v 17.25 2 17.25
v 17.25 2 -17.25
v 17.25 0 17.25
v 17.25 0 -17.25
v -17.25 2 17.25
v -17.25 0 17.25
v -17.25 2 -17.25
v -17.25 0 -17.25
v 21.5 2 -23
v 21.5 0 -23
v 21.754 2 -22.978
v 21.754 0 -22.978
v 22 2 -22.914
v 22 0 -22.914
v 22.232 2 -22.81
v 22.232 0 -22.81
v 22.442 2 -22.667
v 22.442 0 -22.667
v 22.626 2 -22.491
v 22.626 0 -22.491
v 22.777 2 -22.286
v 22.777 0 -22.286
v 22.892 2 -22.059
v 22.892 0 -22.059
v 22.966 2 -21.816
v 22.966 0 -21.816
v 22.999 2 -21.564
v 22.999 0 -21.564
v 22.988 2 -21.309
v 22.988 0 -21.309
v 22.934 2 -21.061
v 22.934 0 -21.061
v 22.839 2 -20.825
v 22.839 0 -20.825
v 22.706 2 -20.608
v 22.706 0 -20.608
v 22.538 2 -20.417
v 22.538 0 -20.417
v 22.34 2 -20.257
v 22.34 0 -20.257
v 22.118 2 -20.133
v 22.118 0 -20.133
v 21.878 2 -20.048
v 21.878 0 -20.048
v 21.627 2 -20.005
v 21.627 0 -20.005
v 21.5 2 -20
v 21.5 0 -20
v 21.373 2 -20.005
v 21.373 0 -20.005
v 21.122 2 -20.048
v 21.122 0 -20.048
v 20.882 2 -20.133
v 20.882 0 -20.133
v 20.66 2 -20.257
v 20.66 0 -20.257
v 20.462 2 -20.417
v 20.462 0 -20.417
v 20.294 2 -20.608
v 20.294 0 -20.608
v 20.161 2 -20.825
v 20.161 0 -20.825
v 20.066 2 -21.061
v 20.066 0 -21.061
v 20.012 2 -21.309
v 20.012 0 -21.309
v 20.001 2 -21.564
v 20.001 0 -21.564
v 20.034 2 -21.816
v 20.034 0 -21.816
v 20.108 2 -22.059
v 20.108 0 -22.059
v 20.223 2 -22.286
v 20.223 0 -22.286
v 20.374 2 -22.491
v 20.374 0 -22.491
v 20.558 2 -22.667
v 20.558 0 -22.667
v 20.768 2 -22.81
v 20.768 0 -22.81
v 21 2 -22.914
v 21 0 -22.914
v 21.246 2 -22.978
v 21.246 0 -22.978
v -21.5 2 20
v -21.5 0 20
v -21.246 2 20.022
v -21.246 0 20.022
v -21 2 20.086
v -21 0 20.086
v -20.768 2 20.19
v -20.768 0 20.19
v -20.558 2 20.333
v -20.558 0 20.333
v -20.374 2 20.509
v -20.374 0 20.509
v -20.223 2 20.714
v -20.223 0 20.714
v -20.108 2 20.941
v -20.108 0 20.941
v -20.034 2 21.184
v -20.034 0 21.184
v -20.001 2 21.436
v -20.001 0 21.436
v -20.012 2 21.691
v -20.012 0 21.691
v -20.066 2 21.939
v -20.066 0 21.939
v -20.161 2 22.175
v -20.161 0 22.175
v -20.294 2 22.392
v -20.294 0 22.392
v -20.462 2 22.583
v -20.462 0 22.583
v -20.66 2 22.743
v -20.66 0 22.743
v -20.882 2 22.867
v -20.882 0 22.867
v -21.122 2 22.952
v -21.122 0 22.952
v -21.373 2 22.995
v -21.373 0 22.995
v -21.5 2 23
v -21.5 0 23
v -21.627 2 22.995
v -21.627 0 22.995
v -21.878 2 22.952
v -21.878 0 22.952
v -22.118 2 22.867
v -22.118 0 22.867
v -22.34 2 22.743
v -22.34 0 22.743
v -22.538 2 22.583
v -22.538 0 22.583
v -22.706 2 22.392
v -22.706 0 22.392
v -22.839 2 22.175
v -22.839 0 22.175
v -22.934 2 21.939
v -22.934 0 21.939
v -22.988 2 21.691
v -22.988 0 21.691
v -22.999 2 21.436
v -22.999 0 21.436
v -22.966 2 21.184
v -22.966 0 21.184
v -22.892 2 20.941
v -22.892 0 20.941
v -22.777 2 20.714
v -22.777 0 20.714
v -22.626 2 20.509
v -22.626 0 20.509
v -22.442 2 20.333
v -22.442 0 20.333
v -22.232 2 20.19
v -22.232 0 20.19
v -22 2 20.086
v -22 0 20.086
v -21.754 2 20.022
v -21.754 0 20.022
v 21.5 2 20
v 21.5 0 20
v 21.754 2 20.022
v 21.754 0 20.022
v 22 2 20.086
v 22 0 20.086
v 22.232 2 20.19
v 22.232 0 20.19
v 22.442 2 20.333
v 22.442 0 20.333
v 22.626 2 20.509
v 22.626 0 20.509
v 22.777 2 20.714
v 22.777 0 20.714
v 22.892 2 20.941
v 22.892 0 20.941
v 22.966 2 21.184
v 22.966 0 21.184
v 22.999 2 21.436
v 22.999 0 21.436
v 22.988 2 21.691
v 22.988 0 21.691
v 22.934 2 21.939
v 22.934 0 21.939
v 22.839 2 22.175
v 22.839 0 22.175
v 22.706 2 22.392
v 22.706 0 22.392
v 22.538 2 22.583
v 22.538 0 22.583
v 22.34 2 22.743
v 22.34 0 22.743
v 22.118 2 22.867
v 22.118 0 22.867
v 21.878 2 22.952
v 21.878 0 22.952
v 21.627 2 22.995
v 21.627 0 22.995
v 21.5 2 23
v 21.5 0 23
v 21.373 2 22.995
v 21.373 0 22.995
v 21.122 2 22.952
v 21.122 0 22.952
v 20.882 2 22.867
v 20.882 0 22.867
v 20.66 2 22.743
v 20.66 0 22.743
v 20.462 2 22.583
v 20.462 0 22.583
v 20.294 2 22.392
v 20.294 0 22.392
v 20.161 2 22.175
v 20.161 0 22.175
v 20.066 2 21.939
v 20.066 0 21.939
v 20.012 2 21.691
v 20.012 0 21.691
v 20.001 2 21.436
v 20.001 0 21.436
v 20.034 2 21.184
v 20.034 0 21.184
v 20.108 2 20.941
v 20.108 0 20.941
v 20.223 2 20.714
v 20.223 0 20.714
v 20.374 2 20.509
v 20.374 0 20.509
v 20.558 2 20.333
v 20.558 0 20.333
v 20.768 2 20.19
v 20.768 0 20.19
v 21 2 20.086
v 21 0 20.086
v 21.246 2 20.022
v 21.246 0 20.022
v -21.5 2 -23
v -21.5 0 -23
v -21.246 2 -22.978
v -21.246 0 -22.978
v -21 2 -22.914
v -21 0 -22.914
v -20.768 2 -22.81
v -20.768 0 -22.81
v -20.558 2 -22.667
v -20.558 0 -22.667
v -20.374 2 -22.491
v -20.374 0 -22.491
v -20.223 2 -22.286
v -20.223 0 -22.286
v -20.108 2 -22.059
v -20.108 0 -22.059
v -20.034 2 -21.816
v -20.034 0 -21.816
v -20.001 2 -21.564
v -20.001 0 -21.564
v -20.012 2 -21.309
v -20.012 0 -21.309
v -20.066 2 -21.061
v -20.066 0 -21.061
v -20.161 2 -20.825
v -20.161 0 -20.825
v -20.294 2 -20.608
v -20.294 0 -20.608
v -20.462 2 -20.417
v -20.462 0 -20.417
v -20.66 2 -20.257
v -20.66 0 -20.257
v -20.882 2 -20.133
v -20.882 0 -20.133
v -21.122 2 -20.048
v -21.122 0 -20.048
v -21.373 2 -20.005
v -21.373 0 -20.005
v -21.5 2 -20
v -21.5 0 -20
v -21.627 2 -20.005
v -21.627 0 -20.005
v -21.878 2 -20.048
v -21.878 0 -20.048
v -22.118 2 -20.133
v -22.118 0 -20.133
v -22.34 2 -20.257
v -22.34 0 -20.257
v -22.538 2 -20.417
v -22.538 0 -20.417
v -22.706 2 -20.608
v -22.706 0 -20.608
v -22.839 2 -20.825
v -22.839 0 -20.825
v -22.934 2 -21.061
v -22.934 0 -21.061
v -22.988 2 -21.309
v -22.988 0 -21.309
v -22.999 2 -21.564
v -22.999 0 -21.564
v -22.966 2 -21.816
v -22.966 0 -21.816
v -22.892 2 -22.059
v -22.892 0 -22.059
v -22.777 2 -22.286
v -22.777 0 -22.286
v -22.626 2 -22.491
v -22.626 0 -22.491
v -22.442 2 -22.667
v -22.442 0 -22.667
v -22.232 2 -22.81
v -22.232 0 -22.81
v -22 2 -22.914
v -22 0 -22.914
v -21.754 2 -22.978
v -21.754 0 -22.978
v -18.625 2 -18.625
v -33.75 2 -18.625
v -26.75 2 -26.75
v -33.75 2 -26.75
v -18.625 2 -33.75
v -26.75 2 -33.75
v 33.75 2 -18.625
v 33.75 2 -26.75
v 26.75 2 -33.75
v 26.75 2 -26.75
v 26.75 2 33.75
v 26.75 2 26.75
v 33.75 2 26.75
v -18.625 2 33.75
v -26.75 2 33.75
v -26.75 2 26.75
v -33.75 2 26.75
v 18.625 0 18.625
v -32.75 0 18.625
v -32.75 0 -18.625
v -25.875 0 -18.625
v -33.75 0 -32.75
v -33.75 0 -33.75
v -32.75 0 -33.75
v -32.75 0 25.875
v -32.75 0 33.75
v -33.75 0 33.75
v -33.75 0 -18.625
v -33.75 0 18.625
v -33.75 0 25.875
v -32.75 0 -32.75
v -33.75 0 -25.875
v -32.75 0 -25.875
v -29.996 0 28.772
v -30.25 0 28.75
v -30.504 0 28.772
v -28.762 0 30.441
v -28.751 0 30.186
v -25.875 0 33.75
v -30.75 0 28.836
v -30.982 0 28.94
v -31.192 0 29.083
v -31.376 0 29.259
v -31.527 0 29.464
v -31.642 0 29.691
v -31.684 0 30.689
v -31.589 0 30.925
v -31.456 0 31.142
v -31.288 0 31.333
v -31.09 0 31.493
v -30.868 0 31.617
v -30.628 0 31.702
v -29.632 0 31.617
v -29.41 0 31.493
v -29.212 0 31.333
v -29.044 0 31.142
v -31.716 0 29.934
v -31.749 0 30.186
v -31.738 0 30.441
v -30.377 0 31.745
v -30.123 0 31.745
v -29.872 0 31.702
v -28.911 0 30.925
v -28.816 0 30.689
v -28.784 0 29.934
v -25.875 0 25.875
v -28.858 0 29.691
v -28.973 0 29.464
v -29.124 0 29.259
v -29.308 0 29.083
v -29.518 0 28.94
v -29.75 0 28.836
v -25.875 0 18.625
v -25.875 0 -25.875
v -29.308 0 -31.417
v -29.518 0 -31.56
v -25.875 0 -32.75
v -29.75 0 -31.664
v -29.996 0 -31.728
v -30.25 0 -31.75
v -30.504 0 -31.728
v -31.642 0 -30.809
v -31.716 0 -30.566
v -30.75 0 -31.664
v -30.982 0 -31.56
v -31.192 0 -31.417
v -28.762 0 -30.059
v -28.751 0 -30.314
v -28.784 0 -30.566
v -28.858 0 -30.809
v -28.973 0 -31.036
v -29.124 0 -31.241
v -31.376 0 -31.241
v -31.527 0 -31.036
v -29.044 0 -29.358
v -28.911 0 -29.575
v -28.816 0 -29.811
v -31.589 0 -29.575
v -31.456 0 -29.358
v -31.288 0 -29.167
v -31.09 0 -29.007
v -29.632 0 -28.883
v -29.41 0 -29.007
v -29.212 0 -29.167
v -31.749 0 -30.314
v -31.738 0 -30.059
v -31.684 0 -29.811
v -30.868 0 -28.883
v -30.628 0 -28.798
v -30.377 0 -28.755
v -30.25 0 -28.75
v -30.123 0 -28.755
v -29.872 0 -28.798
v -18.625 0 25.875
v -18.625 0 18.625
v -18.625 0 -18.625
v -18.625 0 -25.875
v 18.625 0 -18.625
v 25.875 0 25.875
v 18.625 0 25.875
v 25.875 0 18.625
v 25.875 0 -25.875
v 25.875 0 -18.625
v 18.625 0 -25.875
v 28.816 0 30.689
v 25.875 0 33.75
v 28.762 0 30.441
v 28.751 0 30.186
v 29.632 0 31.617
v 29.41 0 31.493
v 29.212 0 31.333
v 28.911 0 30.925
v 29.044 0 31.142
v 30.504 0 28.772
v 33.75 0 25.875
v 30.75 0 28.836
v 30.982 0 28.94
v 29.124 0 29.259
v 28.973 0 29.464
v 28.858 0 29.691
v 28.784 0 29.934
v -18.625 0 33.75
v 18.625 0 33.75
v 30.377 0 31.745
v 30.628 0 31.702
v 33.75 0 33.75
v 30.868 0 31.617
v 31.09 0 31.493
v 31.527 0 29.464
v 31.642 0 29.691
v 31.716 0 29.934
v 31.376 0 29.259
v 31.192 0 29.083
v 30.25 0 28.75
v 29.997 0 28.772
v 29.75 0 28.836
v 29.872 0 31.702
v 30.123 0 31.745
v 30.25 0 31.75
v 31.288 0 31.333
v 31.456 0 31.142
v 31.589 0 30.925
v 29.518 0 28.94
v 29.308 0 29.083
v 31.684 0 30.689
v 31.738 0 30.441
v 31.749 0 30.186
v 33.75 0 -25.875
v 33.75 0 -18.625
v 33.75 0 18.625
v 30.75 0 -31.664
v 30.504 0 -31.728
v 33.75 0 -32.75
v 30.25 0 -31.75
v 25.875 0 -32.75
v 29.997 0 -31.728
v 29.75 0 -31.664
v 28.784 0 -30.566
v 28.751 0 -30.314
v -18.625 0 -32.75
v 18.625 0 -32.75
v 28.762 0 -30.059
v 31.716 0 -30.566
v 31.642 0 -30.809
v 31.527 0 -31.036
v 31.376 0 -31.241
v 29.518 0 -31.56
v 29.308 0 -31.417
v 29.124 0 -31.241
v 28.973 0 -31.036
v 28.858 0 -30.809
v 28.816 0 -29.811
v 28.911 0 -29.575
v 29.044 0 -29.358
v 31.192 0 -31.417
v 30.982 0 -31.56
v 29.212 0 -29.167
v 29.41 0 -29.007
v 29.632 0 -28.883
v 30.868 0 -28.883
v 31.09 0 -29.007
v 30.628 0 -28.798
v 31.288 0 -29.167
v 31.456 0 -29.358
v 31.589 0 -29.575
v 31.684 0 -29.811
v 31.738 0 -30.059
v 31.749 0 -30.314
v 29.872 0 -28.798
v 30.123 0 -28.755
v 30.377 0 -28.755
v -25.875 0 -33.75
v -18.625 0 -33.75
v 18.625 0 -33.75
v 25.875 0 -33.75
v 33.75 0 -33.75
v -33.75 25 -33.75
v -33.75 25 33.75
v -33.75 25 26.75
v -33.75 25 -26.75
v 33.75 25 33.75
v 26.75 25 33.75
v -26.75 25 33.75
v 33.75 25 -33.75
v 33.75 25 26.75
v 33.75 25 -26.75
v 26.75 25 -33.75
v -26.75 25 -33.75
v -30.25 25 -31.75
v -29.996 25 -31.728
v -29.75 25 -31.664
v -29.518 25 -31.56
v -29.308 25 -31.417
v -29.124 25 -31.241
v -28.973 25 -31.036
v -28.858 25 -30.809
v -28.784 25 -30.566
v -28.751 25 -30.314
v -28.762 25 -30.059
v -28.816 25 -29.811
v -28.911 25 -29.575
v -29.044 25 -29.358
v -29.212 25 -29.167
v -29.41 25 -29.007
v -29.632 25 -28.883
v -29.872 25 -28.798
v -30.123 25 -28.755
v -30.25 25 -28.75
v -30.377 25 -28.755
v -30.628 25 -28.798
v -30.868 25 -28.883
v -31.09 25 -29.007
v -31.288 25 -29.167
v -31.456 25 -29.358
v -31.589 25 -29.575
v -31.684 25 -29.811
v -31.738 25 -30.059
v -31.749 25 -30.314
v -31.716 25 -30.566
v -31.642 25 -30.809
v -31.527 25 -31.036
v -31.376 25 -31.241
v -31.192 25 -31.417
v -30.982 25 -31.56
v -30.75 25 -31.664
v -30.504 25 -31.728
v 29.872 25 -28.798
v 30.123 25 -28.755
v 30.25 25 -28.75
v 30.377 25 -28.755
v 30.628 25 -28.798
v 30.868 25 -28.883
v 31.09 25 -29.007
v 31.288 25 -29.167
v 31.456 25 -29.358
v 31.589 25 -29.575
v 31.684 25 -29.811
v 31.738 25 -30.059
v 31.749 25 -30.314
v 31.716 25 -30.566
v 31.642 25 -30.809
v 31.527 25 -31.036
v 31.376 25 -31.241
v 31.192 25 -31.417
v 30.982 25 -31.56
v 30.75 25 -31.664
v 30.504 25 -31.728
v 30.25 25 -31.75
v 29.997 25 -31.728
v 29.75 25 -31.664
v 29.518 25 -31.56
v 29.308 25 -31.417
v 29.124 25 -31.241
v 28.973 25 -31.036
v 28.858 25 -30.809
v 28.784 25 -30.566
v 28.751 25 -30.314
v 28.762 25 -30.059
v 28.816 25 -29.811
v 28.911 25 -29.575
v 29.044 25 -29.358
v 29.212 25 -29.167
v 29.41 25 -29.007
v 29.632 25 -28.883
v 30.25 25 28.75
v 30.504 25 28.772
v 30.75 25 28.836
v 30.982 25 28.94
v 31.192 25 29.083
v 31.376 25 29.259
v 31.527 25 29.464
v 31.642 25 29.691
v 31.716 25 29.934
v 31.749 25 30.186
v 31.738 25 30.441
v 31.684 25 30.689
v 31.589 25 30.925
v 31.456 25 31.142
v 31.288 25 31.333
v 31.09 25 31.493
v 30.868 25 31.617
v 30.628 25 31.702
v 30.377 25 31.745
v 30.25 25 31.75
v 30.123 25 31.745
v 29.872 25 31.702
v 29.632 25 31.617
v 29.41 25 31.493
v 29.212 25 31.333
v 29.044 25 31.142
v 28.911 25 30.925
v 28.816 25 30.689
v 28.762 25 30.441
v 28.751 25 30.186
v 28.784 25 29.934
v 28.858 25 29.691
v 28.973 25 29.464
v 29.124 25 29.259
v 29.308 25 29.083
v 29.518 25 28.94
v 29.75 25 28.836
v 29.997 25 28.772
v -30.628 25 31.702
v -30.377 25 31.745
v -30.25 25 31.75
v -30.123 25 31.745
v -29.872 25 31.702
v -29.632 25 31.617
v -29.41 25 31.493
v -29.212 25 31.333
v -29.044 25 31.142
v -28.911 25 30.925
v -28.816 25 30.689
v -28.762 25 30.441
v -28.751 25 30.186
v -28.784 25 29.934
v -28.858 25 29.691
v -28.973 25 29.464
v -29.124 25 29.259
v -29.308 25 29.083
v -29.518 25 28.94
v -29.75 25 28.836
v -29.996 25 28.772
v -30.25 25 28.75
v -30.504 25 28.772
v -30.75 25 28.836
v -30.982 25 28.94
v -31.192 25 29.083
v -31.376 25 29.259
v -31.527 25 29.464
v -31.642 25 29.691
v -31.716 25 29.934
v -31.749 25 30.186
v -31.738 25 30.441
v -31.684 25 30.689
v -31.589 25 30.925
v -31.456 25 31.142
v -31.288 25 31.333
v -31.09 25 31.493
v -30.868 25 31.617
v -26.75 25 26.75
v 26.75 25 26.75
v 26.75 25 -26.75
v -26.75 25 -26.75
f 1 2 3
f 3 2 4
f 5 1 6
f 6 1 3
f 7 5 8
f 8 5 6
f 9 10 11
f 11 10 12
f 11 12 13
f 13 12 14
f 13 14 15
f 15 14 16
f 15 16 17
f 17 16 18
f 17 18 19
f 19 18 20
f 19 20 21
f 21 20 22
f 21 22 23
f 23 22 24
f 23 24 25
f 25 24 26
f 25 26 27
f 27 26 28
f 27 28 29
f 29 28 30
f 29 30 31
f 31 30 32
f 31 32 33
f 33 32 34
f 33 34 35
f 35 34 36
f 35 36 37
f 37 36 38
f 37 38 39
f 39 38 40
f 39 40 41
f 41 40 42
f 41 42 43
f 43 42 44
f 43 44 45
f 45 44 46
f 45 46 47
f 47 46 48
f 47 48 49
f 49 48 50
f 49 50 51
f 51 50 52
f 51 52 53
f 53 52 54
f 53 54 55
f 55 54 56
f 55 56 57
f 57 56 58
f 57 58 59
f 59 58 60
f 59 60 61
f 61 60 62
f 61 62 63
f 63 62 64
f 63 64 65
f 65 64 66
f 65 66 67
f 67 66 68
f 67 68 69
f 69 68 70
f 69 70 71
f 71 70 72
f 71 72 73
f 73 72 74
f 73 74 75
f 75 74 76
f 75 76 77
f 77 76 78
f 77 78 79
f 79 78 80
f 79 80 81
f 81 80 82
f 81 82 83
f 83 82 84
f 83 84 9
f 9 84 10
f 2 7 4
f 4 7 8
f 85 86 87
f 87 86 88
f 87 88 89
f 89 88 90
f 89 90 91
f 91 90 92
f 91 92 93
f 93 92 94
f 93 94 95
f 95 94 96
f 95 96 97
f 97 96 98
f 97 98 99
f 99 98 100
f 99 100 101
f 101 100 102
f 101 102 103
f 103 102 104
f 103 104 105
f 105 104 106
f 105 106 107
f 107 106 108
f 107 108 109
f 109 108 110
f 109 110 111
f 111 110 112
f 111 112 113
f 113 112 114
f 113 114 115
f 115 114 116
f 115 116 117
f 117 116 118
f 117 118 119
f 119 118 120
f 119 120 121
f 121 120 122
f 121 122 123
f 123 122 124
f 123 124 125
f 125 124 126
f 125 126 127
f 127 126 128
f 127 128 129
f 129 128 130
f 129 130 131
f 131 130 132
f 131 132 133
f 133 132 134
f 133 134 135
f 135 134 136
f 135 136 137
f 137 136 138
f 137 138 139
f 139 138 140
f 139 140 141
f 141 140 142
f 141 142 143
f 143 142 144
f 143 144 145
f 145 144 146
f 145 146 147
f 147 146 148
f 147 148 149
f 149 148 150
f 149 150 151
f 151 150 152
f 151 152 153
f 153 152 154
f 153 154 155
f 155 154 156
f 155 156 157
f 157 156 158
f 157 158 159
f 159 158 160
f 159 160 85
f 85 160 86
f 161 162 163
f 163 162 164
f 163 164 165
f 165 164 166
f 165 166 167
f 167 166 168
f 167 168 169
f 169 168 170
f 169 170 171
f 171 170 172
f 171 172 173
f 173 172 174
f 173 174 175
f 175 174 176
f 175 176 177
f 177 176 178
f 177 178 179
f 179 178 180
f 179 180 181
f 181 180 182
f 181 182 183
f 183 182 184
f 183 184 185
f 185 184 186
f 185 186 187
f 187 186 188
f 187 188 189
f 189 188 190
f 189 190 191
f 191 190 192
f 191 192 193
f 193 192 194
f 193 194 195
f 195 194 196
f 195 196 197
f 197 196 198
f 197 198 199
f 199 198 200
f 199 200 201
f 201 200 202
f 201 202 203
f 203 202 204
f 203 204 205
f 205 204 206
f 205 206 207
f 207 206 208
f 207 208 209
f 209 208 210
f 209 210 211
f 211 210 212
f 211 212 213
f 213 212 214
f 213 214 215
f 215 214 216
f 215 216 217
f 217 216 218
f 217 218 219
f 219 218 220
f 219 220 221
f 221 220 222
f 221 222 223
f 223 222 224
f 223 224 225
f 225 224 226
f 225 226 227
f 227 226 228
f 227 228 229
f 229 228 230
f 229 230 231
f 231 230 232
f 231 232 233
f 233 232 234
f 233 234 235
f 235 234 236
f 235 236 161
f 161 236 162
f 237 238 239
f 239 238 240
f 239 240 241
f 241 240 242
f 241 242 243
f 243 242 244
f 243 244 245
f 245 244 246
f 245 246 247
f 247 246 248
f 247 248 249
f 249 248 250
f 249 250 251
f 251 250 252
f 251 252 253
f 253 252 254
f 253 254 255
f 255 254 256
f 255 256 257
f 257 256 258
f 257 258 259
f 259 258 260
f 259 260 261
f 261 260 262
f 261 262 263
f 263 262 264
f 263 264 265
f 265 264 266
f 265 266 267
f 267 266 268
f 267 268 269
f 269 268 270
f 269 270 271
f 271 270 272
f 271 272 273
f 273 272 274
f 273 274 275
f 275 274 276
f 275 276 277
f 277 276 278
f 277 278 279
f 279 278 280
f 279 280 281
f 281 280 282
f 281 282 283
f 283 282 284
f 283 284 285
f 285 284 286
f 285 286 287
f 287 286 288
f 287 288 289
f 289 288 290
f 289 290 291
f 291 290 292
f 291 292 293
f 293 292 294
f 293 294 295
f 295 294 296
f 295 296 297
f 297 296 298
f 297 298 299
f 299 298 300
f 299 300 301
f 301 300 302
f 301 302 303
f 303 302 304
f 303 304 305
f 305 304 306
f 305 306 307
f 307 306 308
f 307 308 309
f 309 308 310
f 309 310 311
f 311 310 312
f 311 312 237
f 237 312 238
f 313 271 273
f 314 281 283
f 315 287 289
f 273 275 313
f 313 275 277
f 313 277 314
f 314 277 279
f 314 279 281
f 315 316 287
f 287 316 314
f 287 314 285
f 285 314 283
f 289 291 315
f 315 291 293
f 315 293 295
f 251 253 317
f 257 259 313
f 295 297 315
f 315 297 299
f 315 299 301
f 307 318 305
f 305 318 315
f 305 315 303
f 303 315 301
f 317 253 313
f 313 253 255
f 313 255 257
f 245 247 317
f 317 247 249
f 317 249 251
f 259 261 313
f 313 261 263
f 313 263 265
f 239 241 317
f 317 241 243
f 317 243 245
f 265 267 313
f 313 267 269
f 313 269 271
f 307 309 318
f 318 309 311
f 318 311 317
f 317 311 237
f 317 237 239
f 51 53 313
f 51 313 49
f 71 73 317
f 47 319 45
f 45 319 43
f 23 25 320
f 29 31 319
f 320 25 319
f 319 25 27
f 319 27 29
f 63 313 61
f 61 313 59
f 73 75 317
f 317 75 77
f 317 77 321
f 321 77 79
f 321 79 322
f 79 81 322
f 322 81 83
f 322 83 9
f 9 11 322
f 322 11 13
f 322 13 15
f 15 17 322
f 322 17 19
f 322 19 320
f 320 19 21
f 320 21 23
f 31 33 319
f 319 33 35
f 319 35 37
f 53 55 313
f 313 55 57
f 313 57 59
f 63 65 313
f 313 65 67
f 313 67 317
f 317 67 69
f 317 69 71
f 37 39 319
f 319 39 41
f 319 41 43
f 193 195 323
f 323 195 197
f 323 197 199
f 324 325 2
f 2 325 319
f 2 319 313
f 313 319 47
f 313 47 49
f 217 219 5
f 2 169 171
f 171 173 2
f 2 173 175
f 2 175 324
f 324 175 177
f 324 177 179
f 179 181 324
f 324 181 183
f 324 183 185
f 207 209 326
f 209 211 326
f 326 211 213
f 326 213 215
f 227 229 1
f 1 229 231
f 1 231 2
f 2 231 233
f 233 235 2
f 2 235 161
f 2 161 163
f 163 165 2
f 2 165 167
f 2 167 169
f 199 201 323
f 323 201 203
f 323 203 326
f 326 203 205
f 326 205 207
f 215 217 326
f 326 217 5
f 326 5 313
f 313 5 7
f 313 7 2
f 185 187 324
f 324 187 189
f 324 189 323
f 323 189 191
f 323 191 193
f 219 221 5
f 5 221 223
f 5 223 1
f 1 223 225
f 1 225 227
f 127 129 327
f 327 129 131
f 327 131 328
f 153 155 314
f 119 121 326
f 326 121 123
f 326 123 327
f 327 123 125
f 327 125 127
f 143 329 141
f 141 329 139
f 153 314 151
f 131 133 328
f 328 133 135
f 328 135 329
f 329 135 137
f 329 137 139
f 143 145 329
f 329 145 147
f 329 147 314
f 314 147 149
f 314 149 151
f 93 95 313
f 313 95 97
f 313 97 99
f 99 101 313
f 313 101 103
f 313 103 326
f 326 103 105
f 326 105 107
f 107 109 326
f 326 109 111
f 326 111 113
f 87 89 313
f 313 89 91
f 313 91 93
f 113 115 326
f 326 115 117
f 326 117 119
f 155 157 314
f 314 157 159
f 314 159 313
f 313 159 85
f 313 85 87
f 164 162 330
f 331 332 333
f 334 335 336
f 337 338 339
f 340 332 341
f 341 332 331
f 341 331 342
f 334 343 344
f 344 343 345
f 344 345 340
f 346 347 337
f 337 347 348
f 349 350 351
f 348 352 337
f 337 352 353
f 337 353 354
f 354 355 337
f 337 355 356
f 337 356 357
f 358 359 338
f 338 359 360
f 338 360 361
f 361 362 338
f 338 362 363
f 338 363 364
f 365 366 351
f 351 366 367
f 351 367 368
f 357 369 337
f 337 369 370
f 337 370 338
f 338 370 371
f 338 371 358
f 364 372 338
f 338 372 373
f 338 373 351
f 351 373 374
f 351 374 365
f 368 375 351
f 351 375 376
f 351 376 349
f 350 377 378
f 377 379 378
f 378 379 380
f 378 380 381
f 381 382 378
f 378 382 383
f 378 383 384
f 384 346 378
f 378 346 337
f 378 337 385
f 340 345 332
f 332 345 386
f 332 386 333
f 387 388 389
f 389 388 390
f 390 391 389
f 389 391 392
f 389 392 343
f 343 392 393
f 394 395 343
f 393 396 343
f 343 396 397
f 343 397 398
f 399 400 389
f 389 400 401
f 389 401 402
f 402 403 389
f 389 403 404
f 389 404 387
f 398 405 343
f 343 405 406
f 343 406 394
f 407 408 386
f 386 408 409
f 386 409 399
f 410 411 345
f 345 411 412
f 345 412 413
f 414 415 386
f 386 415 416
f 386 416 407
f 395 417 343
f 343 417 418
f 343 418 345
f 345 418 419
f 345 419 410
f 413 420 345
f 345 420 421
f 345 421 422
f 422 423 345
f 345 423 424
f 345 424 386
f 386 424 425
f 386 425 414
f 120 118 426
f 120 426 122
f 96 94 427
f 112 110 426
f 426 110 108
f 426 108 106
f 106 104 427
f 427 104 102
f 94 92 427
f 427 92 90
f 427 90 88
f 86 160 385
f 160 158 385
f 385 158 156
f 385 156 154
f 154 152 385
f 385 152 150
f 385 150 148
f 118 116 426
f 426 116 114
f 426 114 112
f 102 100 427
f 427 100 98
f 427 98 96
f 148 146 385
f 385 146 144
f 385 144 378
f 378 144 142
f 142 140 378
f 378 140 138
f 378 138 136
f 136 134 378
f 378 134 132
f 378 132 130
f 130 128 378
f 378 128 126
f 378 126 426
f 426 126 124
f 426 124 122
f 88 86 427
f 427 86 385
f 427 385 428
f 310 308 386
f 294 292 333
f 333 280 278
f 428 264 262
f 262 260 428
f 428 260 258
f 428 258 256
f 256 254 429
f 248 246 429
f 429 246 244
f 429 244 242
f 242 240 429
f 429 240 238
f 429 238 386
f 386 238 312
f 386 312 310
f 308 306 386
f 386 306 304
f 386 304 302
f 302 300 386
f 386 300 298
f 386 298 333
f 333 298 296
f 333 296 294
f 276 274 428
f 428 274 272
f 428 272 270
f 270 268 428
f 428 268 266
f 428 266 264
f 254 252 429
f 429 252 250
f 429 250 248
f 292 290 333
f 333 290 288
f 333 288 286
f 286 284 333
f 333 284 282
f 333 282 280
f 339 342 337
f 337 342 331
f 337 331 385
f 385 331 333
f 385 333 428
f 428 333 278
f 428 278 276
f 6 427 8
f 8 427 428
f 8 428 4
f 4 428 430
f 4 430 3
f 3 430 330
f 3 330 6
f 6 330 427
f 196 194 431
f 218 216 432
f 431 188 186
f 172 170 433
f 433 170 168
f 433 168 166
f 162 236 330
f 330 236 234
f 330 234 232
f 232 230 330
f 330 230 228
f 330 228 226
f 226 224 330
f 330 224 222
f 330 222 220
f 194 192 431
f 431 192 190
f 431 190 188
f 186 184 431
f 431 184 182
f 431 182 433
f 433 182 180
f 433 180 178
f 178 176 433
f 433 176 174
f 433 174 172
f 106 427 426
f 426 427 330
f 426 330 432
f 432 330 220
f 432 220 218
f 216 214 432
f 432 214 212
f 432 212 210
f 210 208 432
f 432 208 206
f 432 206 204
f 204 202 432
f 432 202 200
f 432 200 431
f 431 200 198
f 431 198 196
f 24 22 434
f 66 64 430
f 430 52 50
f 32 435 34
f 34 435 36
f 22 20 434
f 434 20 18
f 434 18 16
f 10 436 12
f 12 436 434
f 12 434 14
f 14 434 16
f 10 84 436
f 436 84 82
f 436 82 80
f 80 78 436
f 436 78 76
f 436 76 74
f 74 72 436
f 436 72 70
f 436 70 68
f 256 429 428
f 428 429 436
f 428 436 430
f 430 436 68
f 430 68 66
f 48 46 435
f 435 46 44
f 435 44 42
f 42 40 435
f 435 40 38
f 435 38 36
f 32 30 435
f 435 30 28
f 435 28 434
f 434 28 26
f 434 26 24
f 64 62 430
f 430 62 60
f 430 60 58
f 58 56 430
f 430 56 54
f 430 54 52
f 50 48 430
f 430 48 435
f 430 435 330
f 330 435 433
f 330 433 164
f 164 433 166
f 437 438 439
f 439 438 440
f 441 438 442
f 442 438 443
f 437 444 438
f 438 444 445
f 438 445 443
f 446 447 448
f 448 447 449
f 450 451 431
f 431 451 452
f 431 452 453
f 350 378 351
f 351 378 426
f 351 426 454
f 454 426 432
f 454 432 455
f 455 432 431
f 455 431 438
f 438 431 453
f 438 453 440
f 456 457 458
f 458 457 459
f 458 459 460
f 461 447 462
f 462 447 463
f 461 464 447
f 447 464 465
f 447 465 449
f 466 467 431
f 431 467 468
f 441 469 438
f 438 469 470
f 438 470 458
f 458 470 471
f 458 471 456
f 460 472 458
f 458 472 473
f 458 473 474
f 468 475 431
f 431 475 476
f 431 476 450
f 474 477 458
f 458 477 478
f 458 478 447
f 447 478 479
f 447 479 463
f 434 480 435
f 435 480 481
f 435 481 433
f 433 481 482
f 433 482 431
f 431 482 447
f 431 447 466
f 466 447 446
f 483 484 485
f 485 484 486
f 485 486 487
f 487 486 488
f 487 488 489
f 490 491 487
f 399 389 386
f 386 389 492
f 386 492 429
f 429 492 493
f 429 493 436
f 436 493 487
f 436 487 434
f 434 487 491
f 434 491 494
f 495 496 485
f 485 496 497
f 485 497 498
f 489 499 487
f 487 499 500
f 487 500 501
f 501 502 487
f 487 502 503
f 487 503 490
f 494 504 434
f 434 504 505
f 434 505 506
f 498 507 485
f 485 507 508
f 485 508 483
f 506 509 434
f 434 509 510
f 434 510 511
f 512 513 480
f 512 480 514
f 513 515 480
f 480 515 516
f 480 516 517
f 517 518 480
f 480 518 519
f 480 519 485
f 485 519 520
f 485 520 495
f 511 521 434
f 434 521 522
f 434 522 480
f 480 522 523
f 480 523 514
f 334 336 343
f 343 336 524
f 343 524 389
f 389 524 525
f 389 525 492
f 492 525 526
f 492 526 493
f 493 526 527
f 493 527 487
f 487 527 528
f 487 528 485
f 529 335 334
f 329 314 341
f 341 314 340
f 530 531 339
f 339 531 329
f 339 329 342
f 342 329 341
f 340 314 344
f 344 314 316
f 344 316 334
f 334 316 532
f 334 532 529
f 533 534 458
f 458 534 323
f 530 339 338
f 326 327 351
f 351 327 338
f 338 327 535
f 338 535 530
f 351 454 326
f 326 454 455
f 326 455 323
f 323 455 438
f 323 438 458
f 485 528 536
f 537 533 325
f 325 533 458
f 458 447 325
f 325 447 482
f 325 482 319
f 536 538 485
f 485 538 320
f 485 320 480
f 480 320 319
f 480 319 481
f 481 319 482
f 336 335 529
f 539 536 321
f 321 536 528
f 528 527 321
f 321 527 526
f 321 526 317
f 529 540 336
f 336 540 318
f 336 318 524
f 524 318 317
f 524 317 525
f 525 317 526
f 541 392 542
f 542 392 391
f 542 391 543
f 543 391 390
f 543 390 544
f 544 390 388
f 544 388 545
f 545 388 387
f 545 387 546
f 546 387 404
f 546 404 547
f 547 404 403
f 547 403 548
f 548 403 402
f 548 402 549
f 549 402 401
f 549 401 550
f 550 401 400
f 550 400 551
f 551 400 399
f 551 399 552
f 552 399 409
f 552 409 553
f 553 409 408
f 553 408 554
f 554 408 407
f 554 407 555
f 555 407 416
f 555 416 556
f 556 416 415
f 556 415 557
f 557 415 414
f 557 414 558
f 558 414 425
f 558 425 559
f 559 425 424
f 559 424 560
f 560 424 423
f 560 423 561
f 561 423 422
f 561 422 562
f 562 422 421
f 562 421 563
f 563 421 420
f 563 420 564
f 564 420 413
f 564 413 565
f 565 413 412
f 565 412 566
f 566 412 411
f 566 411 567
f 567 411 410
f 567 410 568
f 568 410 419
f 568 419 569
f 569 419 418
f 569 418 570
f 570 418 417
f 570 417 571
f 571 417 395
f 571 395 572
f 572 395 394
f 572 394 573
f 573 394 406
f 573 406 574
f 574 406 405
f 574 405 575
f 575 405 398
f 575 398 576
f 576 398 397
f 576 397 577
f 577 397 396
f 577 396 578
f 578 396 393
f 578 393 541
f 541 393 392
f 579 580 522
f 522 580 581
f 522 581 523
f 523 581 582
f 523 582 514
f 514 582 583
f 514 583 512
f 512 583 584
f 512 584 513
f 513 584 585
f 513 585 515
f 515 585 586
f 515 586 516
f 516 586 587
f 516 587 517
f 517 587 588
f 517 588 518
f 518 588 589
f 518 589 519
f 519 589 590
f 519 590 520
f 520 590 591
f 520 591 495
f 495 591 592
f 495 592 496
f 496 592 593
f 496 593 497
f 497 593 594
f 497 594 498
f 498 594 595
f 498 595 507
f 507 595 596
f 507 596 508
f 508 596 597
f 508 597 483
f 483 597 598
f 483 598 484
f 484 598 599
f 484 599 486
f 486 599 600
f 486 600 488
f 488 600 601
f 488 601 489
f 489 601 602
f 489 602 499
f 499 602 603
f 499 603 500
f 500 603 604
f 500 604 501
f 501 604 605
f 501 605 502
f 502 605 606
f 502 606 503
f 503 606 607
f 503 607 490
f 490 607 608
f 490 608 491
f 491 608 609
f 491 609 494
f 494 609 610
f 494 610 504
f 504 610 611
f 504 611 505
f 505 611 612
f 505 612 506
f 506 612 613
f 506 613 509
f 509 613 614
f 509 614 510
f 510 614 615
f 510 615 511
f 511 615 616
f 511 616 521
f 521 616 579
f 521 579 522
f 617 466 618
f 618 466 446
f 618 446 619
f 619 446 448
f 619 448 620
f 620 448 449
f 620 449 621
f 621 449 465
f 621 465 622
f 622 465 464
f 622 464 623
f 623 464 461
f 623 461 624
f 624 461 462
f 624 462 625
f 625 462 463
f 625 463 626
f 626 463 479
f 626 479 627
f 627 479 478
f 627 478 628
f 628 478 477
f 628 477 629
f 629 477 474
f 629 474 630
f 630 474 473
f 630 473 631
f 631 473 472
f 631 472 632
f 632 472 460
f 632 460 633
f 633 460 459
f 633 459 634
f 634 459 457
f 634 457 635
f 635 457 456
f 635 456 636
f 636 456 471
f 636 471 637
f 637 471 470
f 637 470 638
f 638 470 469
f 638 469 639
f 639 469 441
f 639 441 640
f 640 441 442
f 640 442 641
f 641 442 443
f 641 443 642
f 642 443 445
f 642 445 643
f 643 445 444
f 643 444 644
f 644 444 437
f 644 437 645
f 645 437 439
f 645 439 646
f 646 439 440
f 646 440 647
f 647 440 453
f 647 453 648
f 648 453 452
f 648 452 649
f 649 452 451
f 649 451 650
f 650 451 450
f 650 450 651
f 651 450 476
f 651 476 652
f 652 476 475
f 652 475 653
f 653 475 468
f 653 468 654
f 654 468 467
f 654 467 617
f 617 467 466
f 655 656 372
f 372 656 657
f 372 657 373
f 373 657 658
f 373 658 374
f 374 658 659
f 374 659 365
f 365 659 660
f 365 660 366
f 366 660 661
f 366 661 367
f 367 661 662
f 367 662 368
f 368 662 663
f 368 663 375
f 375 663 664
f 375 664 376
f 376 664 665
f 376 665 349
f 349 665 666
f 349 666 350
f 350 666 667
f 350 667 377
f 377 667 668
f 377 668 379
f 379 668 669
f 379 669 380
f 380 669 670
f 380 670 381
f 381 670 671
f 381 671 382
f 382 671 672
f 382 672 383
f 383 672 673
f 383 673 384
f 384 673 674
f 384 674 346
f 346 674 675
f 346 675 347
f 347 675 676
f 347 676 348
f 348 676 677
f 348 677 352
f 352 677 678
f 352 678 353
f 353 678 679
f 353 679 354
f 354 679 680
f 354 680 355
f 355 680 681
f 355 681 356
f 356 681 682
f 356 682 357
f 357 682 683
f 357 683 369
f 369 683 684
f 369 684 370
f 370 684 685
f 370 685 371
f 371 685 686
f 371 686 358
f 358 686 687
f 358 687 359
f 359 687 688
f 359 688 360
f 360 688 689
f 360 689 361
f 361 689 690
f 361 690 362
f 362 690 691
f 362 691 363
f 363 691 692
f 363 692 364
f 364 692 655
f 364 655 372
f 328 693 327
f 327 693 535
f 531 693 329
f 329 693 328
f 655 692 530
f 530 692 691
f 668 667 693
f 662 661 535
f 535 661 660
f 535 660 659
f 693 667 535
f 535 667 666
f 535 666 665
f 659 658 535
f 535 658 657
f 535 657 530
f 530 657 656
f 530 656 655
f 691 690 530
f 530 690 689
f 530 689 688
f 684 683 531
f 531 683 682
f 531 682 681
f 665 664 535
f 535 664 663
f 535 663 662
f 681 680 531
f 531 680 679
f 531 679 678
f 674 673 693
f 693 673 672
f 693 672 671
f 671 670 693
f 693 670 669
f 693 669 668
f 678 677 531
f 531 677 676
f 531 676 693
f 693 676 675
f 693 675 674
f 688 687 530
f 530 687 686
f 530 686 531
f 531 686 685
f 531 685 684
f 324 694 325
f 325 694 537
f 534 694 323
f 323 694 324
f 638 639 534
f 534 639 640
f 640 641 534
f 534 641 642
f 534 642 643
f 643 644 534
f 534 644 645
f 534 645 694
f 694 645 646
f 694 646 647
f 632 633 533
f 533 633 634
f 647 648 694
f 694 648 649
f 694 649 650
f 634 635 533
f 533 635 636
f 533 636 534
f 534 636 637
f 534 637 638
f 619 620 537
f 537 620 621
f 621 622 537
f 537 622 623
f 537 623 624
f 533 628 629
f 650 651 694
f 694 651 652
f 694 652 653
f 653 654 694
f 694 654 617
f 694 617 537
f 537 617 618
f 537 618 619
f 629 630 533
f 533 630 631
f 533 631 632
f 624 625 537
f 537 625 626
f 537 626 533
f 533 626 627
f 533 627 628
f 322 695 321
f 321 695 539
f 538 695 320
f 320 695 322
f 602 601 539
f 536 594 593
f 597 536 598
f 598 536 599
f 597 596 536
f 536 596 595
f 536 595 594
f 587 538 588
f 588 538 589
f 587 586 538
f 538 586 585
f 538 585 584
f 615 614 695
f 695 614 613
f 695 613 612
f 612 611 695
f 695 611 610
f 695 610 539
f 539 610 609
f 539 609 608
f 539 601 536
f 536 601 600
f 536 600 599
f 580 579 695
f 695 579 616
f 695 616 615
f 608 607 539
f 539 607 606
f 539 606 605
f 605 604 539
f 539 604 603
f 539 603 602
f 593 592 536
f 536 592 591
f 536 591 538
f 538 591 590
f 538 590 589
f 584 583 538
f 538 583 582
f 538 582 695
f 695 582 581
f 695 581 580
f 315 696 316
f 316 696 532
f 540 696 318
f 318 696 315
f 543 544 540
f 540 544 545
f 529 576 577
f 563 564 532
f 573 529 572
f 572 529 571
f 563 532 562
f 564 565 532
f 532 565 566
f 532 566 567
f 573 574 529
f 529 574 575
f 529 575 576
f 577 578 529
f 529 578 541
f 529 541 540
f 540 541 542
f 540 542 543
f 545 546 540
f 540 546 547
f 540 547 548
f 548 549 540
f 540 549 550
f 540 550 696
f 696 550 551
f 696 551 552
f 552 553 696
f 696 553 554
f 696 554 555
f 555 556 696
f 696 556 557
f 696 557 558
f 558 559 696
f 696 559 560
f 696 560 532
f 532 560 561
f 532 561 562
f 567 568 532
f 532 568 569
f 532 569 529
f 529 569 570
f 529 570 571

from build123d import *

# Parameters (mm, degrees)
SKETCH1_W           = 55.5
SKETCH1_H           = 55.5
SKETCH1_R           = 1.5
SKETCH1_W_2         = 34.5
SKETCH1_H_2         = 34.5
BOSS_EXTRUDE2_DEPTH = 2
SKETCH2_W           = 67.5
SKETCH2_H           = 67.5
SKETCH2_R           = 1.5
SKETCH2_W_2         = 55.5
SKETCH2_H_2         = 55.5
BOSS_EXTRUDE5_DEPTH = 2
SKETCH3_W           = 7
SKETCH3_H           = 7
SKETCH3_R           = 1.5
BOSS_EXTRUDE6_DEPTH = 25


with BuildPart() as part:
    # Sketch1 → Boss-Extrude2 (new body)
    with BuildSketch(Plane(origin=(0, 0, 0), x_dir=(1, 0, 0), z_dir=(0, 1, 0))):
        Rectangle(SKETCH1_W, SKETCH1_H)
        with Locations(Location((21.5, -21.5, 0), (0, 0, 270))):
            Circle(SKETCH1_R, mode=Mode.SUBTRACT)
        with Locations(Location((-21.5, -21.5, 0), (0, 0, 270))):
            Circle(SKETCH1_R, mode=Mode.SUBTRACT)
        with Locations(Location((21.5, 21.5, 0), (0, 0, 270))):
            Circle(SKETCH1_R, mode=Mode.SUBTRACT)
        with Locations(Location((-21.5, 21.5, 0), (0, 0, 270))):
            Circle(SKETCH1_R, mode=Mode.SUBTRACT)
        Rectangle(SKETCH1_W_2, SKETCH1_H_2, mode=Mode.SUBTRACT)
    extrude(amount=BOSS_EXTRUDE2_DEPTH)

    # Sketch2 → Boss-Extrude5 (add)
    with BuildSketch(Plane(origin=(0, 0, 0), x_dir=(1, 0, 0), z_dir=(0, 1, 0))):
        Rectangle(SKETCH2_W, SKETCH2_H)
        with Locations(Location((-30.25, 30.25, 0), (0, 0, 270))):
            Circle(SKETCH2_R, mode=Mode.SUBTRACT)
        with Locations(Location((30.25, 30.25, 0), (0, 0, 90))):
            Circle(SKETCH2_R, mode=Mode.SUBTRACT)
        with Locations(Location((30.25, -30.25, 0), (0, 0, 270))):
            Circle(SKETCH2_R, mode=Mode.SUBTRACT)
        with Locations(Location((-30.25, -30.25, 0), (0, 0, 90))):
            Circle(SKETCH2_R, mode=Mode.SUBTRACT)
        Rectangle(SKETCH2_W_2, SKETCH2_H_2, mode=Mode.SUBTRACT)
    extrude(amount=BOSS_EXTRUDE5_DEPTH)

    # Sketch3 → Boss-Extrude6 (add)
    # profile 1 of 4: a face of its own
    with BuildSketch(Plane(origin=(0, 0, 0), x_dir=(1, 0, 0), z_dir=(0, 1, 0))):
        with Locations((-30.25, -30.25)):
            Rectangle(SKETCH3_W, SKETCH3_H)
        with Locations(Location((-30.25, -30.25, 0), (0, 0, 90))):
            Circle(SKETCH3_R, mode=Mode.SUBTRACT)
    # profile 2 of 4: a face of its own
    with BuildSketch(Plane(origin=(0, 0, 0), x_dir=(1, 0, 0), z_dir=(0, 1, 0))):
        with Locations((30.25, -30.25)):
            Rectangle(SKETCH3_W, SKETCH3_H)
        with Locations(Location((30.25, -30.25, 0), (0, 0, 270))):
            Circle(SKETCH3_R, mode=Mode.SUBTRACT)
    # profile 3 of 4: a face of its own
    with BuildSketch(Plane(origin=(0, 0, 0), x_dir=(1, 0, 0), z_dir=(0, 1, 0))):
        with Locations((-30.25, 30.25)):
            Rectangle(SKETCH3_W, SKETCH3_H)
        with Locations(Location((-30.25, 30.25, 0), (0, 0, 270))):
            Circle(SKETCH3_R, mode=Mode.SUBTRACT)
    # profile 4 of 4: a face of its own
    with BuildSketch(Plane(origin=(0, 0, 0), x_dir=(1, 0, 0), z_dir=(0, 1, 0))):
        with Locations((30.25, 30.25)):
            Rectangle(SKETCH3_W, SKETCH3_H)
        with Locations(Location((30.25, 30.25, 0), (0, 0, 90))):
            Circle(SKETCH3_R, mode=Mode.SUBTRACT)
    extrude(amount=BOSS_EXTRUDE6_DEPTH)


solid = part.part
